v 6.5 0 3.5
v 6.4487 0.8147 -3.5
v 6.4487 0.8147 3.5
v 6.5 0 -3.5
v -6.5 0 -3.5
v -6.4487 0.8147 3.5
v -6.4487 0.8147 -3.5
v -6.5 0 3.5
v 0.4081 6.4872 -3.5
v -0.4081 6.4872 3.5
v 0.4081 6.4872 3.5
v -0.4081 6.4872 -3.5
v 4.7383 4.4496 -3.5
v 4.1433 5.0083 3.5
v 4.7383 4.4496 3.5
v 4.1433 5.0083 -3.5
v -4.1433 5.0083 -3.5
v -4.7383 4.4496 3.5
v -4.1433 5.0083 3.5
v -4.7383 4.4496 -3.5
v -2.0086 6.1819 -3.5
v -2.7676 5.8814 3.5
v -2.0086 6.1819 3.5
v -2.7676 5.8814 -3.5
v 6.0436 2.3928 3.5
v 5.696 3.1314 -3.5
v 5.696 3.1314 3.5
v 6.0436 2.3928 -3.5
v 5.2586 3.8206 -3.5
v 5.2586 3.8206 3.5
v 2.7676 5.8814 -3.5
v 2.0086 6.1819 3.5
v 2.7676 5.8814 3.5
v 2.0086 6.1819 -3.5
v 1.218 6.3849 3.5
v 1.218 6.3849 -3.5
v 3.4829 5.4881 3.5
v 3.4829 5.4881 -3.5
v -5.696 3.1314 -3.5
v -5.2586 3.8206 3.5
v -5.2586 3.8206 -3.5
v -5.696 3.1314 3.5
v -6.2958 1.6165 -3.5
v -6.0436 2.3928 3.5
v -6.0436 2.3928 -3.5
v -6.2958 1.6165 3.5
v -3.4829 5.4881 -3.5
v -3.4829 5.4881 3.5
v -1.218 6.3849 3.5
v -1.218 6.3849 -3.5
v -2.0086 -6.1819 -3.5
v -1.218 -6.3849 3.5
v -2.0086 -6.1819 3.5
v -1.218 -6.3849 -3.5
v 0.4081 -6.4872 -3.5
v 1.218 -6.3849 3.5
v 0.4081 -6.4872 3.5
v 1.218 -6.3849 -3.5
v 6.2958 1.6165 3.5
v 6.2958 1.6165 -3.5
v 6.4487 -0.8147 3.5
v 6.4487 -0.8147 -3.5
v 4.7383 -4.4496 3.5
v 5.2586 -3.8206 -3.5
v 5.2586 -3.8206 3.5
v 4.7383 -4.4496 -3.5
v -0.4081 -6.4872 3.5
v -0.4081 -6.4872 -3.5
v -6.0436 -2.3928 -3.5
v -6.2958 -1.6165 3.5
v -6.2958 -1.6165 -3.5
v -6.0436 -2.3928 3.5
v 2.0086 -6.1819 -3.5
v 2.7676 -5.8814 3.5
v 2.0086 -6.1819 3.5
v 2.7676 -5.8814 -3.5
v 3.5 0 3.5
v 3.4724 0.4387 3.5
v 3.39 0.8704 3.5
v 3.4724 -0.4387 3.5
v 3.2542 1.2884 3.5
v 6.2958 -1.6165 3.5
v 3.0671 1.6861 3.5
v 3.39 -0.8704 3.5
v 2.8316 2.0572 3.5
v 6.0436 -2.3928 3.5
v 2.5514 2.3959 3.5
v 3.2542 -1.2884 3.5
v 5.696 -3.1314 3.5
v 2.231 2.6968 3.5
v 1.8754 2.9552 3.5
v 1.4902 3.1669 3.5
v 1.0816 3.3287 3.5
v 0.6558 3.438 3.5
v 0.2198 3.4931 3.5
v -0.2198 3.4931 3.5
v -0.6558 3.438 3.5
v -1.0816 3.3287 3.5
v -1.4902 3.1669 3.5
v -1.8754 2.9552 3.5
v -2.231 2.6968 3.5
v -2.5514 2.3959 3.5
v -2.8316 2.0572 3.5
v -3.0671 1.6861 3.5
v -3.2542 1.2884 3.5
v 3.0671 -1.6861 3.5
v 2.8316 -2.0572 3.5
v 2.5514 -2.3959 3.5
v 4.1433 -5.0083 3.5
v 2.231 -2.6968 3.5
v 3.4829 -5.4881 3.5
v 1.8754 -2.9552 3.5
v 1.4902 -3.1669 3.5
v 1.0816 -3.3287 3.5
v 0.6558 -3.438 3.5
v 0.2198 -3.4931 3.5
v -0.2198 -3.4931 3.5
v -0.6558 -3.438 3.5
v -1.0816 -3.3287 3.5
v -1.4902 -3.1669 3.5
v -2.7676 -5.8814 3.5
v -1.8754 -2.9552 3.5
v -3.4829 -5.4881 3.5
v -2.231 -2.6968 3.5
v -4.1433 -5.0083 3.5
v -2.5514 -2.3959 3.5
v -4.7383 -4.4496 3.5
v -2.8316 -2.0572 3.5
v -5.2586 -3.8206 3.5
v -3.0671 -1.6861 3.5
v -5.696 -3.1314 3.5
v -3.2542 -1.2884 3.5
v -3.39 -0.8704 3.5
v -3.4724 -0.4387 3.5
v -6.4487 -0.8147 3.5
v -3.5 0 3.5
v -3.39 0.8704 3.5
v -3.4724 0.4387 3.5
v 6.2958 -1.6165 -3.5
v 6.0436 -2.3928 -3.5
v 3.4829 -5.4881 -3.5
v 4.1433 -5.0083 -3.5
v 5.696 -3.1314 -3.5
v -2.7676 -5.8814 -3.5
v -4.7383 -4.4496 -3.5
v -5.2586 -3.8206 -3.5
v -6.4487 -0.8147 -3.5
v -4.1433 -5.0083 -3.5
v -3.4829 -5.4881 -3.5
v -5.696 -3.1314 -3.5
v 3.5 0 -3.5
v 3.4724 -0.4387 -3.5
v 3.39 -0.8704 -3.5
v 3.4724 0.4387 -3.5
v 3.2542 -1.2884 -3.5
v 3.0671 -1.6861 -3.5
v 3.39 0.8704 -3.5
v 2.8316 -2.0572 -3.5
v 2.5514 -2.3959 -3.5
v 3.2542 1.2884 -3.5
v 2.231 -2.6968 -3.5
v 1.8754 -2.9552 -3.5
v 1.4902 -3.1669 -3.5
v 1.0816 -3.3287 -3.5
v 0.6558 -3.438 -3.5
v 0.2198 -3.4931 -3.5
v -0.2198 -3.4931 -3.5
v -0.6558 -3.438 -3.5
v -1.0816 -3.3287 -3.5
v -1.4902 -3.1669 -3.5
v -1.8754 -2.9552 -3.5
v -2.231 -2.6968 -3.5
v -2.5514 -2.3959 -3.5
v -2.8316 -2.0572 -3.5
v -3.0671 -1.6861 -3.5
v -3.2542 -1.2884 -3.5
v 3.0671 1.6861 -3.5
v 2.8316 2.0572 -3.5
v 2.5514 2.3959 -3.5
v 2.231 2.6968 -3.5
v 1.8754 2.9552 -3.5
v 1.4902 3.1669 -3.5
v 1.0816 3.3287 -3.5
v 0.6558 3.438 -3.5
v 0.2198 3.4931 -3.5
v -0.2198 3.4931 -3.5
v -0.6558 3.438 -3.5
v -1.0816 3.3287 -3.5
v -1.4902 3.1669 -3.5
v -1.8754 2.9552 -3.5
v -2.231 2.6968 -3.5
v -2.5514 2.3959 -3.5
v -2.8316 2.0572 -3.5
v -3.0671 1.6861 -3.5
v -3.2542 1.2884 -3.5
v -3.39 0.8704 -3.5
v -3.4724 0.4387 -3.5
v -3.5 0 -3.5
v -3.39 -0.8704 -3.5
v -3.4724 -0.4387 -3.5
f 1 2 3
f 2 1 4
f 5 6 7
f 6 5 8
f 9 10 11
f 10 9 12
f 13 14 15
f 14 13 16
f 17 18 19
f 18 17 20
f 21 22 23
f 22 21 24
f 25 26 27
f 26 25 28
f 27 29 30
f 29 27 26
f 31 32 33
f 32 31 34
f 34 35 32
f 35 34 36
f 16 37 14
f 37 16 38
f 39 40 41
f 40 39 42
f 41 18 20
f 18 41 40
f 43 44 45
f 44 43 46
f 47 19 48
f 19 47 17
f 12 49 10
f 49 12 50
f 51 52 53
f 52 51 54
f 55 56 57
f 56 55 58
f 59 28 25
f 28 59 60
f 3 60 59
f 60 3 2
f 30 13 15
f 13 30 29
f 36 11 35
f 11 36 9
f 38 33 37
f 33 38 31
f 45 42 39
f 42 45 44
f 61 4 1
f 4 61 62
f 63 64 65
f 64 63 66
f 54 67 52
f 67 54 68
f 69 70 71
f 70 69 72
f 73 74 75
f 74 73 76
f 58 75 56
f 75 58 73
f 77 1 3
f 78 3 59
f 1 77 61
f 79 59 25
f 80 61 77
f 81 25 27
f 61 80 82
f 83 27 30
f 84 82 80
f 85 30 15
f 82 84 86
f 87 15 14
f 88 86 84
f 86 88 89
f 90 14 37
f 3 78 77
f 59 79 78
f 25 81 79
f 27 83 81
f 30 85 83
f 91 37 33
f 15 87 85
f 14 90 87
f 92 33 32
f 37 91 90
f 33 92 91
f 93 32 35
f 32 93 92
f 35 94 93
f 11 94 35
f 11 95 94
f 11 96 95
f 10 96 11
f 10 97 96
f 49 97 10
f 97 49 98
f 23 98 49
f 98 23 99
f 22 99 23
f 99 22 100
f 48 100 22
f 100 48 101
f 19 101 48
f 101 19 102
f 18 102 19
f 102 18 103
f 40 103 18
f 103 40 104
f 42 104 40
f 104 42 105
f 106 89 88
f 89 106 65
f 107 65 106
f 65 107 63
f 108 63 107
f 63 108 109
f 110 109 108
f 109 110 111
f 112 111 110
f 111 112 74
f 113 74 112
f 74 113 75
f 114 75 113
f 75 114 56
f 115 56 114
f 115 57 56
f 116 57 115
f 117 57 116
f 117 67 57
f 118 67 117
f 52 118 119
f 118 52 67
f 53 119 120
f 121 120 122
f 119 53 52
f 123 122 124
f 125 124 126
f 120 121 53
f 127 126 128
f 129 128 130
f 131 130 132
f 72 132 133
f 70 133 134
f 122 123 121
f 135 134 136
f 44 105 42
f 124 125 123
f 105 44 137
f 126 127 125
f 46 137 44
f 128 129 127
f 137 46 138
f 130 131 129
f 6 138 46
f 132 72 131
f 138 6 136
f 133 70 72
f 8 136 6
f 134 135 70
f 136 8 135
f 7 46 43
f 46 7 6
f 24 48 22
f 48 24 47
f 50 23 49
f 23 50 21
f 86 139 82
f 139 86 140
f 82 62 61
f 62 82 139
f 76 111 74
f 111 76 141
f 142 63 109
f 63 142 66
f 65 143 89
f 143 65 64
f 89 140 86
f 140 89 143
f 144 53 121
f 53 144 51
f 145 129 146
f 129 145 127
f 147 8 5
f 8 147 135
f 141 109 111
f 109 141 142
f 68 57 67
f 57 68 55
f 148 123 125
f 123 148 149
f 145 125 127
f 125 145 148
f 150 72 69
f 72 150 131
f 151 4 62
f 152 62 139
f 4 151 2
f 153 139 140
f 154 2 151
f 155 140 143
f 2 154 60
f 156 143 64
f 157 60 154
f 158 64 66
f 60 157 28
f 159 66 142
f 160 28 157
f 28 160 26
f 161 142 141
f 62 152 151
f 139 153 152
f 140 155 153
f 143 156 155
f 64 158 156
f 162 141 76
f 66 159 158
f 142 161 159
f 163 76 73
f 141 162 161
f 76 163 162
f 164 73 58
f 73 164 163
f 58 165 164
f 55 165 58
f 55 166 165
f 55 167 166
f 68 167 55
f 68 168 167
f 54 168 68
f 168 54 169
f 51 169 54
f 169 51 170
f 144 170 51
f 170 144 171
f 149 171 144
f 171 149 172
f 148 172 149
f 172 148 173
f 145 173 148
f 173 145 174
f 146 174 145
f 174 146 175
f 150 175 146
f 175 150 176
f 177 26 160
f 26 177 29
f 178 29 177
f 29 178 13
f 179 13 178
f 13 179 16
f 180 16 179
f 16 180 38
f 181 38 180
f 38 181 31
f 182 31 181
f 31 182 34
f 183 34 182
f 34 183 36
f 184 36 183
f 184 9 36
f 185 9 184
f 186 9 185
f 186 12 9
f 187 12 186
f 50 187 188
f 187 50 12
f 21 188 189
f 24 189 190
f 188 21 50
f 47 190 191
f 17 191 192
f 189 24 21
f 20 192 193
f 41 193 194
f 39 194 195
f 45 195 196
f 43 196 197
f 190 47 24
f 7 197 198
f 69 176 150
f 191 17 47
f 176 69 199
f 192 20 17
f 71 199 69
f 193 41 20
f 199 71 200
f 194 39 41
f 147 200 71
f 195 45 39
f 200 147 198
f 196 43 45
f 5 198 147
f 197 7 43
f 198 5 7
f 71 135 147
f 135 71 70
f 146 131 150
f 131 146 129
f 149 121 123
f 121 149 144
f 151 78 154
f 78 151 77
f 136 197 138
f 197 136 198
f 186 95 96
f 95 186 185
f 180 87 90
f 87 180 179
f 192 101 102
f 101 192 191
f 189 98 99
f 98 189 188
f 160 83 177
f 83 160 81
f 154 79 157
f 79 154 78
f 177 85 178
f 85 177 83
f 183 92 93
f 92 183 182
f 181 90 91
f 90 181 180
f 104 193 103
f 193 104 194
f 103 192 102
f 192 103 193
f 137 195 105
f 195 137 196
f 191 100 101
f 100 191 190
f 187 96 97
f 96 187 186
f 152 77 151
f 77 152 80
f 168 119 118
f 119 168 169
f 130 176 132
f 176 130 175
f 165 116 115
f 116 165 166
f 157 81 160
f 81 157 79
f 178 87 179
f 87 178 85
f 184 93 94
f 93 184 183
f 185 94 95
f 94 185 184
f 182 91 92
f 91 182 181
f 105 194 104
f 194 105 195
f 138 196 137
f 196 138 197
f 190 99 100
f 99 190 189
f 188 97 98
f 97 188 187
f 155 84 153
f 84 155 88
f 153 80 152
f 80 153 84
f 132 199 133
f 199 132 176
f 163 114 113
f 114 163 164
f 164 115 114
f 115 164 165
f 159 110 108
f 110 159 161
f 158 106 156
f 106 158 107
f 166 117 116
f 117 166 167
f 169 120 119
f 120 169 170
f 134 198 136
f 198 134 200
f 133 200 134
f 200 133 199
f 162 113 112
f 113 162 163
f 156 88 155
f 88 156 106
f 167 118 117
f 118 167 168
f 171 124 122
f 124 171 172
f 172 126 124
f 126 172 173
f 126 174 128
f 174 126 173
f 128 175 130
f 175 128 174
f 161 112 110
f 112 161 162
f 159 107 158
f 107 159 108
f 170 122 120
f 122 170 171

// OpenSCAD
$fn = 50;


difference() {
	union() {
		translate(v = [0, 0, -3.5000000000]) {
			cylinder(h = 7, r = 6.5000000000);
		}
	}
	union() {
		translate(v = [0, 0, -100.0000000000]) {
			cylinder(h = 200, r = 3.5000000000);
		}
	}
}
